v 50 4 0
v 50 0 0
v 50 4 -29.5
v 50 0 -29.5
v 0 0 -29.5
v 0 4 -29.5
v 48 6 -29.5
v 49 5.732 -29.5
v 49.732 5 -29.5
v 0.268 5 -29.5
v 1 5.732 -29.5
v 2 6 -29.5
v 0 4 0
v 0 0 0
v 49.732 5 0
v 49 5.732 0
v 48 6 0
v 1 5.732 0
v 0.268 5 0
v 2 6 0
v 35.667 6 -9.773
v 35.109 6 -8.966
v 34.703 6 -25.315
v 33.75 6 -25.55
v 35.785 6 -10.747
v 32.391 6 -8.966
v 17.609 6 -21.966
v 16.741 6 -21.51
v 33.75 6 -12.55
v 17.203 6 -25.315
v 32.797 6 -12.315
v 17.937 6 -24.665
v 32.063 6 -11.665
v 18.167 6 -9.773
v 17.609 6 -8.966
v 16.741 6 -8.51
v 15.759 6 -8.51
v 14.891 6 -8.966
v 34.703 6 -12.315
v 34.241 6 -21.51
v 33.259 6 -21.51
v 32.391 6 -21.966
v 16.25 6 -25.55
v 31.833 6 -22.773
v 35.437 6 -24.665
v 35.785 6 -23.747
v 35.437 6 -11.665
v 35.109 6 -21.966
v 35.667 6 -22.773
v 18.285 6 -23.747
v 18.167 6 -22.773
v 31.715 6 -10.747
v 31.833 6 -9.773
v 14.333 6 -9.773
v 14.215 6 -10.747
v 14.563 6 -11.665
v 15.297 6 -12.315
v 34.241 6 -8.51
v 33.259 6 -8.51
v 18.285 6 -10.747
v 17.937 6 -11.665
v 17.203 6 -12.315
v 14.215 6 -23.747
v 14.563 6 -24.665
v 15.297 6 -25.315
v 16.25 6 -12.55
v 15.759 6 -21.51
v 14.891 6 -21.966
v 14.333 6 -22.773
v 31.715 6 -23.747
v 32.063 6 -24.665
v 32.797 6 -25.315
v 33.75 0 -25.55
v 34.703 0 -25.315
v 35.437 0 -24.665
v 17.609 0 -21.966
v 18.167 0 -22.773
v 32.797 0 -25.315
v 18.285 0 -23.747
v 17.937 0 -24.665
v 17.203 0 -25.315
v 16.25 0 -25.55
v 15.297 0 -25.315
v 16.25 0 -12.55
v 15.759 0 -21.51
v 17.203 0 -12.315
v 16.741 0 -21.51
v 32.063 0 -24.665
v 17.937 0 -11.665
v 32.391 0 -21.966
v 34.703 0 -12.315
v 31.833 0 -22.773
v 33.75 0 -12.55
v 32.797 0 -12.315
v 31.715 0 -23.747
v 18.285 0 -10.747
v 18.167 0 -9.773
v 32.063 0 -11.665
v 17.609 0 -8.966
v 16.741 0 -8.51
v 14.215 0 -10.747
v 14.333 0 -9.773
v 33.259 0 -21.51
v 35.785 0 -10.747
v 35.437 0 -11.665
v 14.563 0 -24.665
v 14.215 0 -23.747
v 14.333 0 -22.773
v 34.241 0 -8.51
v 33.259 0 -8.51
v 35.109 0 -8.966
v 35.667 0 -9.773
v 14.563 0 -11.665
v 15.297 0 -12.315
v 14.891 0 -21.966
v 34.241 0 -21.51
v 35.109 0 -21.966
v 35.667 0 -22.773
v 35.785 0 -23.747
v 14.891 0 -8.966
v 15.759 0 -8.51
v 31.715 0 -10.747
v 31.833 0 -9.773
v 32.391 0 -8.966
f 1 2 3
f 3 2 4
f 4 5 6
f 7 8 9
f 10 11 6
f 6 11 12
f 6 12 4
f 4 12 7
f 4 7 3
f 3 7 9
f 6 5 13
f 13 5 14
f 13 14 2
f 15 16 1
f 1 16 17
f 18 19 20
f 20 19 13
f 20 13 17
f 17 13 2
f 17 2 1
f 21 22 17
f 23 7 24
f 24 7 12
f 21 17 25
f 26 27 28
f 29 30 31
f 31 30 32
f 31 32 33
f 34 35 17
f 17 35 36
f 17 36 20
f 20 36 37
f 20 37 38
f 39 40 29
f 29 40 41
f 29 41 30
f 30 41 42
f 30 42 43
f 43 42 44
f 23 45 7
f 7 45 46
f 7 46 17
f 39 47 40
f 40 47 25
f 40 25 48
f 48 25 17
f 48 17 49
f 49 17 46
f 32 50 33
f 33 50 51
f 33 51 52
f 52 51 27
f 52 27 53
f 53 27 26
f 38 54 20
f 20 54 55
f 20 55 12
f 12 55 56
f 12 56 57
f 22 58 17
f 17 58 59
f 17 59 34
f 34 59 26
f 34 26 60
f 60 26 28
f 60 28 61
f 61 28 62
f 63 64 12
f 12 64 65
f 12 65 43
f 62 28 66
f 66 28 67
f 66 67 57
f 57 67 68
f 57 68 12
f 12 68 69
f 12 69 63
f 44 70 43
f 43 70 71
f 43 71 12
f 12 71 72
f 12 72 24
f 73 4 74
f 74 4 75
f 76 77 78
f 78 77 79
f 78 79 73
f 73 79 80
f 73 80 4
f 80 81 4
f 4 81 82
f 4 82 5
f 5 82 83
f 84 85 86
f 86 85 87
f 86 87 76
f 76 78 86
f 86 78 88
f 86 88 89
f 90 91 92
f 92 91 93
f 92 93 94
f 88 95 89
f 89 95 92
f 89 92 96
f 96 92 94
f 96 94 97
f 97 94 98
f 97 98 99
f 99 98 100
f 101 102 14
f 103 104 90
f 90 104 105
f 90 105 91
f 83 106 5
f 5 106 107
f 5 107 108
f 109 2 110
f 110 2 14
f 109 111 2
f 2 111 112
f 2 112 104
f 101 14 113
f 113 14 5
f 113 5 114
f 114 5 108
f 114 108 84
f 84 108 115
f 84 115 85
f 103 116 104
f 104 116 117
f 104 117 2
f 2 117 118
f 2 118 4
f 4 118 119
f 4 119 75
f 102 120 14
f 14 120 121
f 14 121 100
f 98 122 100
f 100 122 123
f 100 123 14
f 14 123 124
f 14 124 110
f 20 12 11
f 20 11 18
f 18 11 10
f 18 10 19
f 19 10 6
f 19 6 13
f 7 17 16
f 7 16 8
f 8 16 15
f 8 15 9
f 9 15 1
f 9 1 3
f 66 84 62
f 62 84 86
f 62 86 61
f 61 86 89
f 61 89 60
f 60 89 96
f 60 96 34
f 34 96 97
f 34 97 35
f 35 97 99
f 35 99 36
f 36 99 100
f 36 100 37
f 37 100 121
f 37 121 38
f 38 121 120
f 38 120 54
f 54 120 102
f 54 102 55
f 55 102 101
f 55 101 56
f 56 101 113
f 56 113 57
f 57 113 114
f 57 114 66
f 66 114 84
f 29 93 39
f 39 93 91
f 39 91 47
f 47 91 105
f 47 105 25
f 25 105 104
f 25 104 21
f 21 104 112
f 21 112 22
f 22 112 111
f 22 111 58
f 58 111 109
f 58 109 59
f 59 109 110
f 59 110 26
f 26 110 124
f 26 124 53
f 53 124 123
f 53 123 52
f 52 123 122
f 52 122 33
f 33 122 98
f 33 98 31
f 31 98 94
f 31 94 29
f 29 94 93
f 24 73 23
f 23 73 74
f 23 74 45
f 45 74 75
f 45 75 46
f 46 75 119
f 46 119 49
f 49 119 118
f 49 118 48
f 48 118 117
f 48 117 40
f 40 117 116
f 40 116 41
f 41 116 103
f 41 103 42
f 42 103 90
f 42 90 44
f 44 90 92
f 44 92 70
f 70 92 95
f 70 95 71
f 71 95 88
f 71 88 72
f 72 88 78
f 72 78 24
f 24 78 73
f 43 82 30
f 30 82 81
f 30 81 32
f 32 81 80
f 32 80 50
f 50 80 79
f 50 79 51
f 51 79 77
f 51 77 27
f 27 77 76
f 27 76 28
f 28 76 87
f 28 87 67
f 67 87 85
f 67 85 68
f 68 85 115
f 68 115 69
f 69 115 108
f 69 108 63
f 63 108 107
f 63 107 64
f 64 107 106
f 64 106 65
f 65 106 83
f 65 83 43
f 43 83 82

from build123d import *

# Parameters (mm, degrees)
SKETCH1_W             = 17.5
SKETCH1_H             = 6
SKETCH1_H_2           = 13
SKETCH1_W_2           = 16.25
SKETCH1_H_3           = 10.5
BOSS_EXTRUDE1_DEPTH   = 6
FILLET1_R             = 2
FILLET2_R             = 2
F_4_0MM_DOWEL_HOLE2_D = 4.1


with BuildPart() as part:
    # Sketch1 → Boss-Extrude1 (new body)
    with BuildSketch(Plane(origin=(0, 0, 0), x_dir=(1, 0, 0), z_dir=(0, 1, 0))):
        Polygon((0, 0), (16.25, 0), (16.25, 10.5), (16.25, 23.5), (16.25, 29.5), (0, 29.5), align=None)
        with Locations((25, 26.5)):
            Rectangle(SKETCH1_W, SKETCH1_H)
        with Locations((25, 17)):
            Rectangle(SKETCH1_W, SKETCH1_H_2)
        with Locations((41.875, 17)):
            Rectangle(SKETCH1_W_2, SKETCH1_H_2)
        with Locations((25, 5.25)):
            Rectangle(SKETCH1_W, SKETCH1_H_3)
        with Locations((41.875, 5.25)):
            Rectangle(SKETCH1_W_2, SKETCH1_H_3)
        with Locations((41.875, 26.5)):
            Rectangle(SKETCH1_W_2, SKETCH1_H)
    extrude(amount=BOSS_EXTRUDE1_DEPTH)

    # Fillet1
    fillet1_edges = [part.edges().sort_by_distance(p)[0] for p in [
        (0, 6, -14.75),
    ]]
    fillet(fillet1_edges, radius=FILLET1_R)

    # Fillet2
    fillet2_edges = [part.edges().sort_by_distance(p)[0] for p in [
        (50, 6, -14.75),
    ]]
    fillet(fillet2_edges, radius=FILLET2_R)

    # Ø4.0mm Dowel Hole2 (through all)
    with Locations(Plane(origin=(16.25, 0, -23.5), x_dir=(0, 0, -1), z_dir=(0, -1, 0))):
        with Locations((0, 0), (0, 17.5), (-13, 17.5), (-13, 0)):
            Hole(F_4_0MM_DOWEL_HOLE2_D / 2)


solid = part.part
